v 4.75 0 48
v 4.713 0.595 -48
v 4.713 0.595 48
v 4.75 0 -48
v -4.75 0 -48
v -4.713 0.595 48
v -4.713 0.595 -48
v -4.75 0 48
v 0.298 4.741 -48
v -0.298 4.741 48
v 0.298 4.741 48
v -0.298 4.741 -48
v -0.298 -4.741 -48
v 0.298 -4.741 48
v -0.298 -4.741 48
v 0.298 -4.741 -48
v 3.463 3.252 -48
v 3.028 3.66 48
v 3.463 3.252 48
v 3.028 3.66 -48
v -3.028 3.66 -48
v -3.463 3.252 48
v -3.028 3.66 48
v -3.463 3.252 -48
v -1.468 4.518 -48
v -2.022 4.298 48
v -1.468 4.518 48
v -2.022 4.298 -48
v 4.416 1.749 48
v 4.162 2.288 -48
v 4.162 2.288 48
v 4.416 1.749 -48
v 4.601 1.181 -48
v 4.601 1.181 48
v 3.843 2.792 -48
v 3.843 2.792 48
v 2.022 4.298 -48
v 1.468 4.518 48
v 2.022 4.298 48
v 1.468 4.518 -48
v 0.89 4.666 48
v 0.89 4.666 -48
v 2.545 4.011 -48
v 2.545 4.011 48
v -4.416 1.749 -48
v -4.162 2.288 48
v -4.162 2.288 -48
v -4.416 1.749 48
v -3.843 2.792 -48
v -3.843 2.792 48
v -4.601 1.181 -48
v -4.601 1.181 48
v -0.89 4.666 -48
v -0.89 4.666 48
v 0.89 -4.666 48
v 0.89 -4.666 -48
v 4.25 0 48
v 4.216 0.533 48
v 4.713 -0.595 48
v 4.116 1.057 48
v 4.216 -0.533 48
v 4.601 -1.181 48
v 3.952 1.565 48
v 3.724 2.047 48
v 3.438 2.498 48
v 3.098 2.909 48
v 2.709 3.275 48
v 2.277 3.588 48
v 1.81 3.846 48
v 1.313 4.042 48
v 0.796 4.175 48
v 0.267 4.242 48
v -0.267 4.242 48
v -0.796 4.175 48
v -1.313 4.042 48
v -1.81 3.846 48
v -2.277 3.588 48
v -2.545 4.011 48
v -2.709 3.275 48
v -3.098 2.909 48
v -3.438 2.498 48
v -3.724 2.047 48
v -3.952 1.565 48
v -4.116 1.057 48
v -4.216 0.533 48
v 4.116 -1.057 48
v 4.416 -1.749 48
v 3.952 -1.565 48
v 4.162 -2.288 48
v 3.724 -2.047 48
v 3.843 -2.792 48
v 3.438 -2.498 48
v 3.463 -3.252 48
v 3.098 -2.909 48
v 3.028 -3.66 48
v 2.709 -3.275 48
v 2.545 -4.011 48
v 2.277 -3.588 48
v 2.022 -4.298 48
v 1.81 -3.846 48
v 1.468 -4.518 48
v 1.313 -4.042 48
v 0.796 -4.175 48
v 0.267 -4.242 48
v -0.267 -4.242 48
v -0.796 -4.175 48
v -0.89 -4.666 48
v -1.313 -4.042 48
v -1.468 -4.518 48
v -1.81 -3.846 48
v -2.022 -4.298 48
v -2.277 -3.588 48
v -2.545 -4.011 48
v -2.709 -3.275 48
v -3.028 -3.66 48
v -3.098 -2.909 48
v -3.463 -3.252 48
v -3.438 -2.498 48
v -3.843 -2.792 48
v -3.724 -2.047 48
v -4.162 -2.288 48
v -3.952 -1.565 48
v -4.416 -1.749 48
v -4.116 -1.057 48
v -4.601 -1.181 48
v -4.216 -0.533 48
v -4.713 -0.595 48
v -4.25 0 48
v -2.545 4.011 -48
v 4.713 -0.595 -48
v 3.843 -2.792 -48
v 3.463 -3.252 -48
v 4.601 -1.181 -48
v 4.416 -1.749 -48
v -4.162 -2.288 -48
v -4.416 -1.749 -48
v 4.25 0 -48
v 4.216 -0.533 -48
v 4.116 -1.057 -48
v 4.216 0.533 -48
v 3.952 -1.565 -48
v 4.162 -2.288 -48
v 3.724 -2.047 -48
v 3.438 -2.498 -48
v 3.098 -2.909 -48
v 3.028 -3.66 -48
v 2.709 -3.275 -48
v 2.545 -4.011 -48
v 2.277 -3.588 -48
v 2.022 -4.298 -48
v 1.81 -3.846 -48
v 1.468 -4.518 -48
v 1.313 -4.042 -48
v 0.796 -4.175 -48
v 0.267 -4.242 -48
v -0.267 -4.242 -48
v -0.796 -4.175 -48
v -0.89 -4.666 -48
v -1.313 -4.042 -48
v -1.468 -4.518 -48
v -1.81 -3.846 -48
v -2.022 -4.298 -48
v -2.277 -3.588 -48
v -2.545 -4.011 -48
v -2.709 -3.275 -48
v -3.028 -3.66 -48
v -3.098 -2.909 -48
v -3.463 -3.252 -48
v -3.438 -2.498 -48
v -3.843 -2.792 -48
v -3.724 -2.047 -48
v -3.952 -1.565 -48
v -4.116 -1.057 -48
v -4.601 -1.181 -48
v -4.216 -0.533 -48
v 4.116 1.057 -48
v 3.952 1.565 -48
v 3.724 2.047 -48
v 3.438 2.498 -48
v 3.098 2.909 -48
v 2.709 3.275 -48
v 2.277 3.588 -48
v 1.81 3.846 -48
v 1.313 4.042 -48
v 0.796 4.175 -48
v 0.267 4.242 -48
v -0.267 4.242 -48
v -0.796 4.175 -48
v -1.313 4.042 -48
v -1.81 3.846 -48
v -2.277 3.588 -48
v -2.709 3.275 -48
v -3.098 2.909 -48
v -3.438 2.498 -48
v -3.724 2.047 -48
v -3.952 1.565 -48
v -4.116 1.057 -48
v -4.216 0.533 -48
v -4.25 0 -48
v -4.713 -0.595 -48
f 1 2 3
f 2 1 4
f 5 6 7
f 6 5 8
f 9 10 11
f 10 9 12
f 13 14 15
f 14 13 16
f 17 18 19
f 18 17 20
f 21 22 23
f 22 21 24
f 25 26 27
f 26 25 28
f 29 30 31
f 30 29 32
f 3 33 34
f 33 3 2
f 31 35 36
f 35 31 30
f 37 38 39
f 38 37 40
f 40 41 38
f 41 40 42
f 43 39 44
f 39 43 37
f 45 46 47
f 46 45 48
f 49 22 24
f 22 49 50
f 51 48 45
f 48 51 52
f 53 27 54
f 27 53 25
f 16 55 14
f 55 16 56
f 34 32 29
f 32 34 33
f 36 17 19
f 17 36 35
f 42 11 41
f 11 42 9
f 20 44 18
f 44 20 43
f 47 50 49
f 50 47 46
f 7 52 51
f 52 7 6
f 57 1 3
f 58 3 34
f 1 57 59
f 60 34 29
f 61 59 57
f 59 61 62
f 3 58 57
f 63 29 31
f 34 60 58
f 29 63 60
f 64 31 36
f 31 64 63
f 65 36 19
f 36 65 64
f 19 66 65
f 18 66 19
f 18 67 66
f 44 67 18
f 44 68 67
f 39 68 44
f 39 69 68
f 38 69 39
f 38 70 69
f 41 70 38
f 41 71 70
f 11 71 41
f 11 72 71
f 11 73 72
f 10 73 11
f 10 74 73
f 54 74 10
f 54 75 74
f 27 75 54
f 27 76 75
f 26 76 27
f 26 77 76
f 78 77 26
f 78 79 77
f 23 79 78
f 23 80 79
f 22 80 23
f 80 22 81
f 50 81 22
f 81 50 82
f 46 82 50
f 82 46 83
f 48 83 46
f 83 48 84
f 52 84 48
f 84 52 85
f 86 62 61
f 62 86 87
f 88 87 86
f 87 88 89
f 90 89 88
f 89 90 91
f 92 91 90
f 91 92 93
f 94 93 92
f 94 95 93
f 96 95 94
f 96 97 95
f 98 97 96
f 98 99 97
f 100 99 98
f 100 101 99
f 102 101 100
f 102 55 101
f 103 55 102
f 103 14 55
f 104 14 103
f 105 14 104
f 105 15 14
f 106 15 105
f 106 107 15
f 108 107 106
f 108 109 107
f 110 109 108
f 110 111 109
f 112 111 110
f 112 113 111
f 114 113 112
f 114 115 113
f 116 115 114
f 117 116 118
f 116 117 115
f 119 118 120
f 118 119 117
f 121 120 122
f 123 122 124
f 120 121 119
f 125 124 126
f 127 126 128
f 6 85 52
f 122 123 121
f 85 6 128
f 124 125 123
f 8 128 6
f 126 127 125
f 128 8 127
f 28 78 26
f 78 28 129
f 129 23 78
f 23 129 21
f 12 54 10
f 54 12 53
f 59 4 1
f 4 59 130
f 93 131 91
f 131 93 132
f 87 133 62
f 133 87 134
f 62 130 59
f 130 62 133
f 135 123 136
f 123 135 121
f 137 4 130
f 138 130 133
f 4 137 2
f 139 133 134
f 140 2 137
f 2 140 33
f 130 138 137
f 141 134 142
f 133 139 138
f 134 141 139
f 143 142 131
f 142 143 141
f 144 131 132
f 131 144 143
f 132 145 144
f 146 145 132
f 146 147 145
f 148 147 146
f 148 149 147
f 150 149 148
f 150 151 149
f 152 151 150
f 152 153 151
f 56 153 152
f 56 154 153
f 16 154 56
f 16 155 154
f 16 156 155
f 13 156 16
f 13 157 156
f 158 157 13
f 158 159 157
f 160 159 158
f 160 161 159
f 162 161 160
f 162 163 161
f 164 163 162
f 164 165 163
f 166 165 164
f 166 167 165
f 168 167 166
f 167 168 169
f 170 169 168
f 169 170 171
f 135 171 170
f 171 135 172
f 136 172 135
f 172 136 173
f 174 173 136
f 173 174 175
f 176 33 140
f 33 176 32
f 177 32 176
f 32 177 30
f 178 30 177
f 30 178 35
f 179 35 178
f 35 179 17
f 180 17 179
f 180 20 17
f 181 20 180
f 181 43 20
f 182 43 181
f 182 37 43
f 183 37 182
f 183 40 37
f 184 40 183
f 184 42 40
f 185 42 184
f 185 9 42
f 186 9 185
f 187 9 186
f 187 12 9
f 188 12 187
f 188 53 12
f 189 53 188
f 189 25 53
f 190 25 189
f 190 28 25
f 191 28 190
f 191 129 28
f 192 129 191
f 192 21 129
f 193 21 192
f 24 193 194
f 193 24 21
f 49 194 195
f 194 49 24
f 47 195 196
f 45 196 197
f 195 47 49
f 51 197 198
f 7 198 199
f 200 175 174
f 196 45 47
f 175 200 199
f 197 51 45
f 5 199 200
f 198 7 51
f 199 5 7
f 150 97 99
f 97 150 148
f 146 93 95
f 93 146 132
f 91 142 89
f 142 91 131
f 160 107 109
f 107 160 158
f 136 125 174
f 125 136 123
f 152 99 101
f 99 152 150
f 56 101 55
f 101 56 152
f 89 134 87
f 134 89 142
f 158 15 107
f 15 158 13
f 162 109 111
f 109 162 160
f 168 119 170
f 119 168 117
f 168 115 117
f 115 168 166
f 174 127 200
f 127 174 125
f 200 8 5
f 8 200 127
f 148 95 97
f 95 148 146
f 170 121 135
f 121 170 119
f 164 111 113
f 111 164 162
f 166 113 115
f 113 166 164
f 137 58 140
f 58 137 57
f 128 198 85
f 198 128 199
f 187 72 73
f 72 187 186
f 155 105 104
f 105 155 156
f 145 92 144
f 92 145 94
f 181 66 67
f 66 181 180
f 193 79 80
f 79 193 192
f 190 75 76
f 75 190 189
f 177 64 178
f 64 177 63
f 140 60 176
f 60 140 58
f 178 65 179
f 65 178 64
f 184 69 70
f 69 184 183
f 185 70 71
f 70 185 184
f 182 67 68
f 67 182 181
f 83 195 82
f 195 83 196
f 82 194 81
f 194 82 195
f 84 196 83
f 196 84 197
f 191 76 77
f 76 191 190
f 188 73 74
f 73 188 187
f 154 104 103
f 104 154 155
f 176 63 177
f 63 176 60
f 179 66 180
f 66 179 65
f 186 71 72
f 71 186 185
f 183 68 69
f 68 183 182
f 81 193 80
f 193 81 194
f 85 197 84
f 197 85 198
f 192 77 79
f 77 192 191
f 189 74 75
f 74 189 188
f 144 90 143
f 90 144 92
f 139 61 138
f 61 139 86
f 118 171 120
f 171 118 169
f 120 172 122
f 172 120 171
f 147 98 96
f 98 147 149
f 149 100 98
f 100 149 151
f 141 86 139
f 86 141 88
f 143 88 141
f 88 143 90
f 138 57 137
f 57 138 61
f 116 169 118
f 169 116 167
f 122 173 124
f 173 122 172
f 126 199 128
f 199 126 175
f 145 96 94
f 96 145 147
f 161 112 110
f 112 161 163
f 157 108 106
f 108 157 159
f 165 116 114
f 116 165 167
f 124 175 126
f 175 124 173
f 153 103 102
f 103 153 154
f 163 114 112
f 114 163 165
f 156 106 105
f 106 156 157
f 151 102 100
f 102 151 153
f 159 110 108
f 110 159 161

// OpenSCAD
$fn = 50;


difference() {
	union() {
		translate(v = [0, 0, -48.0000000000]) {
			cylinder(h = 96, r = 4.7500000000);
		}
	}
	union() {
		translate(v = [0, 0, -100.0000000000]) {
			cylinder(h = 200, r = 4.2500000000);
		}
	}
}
